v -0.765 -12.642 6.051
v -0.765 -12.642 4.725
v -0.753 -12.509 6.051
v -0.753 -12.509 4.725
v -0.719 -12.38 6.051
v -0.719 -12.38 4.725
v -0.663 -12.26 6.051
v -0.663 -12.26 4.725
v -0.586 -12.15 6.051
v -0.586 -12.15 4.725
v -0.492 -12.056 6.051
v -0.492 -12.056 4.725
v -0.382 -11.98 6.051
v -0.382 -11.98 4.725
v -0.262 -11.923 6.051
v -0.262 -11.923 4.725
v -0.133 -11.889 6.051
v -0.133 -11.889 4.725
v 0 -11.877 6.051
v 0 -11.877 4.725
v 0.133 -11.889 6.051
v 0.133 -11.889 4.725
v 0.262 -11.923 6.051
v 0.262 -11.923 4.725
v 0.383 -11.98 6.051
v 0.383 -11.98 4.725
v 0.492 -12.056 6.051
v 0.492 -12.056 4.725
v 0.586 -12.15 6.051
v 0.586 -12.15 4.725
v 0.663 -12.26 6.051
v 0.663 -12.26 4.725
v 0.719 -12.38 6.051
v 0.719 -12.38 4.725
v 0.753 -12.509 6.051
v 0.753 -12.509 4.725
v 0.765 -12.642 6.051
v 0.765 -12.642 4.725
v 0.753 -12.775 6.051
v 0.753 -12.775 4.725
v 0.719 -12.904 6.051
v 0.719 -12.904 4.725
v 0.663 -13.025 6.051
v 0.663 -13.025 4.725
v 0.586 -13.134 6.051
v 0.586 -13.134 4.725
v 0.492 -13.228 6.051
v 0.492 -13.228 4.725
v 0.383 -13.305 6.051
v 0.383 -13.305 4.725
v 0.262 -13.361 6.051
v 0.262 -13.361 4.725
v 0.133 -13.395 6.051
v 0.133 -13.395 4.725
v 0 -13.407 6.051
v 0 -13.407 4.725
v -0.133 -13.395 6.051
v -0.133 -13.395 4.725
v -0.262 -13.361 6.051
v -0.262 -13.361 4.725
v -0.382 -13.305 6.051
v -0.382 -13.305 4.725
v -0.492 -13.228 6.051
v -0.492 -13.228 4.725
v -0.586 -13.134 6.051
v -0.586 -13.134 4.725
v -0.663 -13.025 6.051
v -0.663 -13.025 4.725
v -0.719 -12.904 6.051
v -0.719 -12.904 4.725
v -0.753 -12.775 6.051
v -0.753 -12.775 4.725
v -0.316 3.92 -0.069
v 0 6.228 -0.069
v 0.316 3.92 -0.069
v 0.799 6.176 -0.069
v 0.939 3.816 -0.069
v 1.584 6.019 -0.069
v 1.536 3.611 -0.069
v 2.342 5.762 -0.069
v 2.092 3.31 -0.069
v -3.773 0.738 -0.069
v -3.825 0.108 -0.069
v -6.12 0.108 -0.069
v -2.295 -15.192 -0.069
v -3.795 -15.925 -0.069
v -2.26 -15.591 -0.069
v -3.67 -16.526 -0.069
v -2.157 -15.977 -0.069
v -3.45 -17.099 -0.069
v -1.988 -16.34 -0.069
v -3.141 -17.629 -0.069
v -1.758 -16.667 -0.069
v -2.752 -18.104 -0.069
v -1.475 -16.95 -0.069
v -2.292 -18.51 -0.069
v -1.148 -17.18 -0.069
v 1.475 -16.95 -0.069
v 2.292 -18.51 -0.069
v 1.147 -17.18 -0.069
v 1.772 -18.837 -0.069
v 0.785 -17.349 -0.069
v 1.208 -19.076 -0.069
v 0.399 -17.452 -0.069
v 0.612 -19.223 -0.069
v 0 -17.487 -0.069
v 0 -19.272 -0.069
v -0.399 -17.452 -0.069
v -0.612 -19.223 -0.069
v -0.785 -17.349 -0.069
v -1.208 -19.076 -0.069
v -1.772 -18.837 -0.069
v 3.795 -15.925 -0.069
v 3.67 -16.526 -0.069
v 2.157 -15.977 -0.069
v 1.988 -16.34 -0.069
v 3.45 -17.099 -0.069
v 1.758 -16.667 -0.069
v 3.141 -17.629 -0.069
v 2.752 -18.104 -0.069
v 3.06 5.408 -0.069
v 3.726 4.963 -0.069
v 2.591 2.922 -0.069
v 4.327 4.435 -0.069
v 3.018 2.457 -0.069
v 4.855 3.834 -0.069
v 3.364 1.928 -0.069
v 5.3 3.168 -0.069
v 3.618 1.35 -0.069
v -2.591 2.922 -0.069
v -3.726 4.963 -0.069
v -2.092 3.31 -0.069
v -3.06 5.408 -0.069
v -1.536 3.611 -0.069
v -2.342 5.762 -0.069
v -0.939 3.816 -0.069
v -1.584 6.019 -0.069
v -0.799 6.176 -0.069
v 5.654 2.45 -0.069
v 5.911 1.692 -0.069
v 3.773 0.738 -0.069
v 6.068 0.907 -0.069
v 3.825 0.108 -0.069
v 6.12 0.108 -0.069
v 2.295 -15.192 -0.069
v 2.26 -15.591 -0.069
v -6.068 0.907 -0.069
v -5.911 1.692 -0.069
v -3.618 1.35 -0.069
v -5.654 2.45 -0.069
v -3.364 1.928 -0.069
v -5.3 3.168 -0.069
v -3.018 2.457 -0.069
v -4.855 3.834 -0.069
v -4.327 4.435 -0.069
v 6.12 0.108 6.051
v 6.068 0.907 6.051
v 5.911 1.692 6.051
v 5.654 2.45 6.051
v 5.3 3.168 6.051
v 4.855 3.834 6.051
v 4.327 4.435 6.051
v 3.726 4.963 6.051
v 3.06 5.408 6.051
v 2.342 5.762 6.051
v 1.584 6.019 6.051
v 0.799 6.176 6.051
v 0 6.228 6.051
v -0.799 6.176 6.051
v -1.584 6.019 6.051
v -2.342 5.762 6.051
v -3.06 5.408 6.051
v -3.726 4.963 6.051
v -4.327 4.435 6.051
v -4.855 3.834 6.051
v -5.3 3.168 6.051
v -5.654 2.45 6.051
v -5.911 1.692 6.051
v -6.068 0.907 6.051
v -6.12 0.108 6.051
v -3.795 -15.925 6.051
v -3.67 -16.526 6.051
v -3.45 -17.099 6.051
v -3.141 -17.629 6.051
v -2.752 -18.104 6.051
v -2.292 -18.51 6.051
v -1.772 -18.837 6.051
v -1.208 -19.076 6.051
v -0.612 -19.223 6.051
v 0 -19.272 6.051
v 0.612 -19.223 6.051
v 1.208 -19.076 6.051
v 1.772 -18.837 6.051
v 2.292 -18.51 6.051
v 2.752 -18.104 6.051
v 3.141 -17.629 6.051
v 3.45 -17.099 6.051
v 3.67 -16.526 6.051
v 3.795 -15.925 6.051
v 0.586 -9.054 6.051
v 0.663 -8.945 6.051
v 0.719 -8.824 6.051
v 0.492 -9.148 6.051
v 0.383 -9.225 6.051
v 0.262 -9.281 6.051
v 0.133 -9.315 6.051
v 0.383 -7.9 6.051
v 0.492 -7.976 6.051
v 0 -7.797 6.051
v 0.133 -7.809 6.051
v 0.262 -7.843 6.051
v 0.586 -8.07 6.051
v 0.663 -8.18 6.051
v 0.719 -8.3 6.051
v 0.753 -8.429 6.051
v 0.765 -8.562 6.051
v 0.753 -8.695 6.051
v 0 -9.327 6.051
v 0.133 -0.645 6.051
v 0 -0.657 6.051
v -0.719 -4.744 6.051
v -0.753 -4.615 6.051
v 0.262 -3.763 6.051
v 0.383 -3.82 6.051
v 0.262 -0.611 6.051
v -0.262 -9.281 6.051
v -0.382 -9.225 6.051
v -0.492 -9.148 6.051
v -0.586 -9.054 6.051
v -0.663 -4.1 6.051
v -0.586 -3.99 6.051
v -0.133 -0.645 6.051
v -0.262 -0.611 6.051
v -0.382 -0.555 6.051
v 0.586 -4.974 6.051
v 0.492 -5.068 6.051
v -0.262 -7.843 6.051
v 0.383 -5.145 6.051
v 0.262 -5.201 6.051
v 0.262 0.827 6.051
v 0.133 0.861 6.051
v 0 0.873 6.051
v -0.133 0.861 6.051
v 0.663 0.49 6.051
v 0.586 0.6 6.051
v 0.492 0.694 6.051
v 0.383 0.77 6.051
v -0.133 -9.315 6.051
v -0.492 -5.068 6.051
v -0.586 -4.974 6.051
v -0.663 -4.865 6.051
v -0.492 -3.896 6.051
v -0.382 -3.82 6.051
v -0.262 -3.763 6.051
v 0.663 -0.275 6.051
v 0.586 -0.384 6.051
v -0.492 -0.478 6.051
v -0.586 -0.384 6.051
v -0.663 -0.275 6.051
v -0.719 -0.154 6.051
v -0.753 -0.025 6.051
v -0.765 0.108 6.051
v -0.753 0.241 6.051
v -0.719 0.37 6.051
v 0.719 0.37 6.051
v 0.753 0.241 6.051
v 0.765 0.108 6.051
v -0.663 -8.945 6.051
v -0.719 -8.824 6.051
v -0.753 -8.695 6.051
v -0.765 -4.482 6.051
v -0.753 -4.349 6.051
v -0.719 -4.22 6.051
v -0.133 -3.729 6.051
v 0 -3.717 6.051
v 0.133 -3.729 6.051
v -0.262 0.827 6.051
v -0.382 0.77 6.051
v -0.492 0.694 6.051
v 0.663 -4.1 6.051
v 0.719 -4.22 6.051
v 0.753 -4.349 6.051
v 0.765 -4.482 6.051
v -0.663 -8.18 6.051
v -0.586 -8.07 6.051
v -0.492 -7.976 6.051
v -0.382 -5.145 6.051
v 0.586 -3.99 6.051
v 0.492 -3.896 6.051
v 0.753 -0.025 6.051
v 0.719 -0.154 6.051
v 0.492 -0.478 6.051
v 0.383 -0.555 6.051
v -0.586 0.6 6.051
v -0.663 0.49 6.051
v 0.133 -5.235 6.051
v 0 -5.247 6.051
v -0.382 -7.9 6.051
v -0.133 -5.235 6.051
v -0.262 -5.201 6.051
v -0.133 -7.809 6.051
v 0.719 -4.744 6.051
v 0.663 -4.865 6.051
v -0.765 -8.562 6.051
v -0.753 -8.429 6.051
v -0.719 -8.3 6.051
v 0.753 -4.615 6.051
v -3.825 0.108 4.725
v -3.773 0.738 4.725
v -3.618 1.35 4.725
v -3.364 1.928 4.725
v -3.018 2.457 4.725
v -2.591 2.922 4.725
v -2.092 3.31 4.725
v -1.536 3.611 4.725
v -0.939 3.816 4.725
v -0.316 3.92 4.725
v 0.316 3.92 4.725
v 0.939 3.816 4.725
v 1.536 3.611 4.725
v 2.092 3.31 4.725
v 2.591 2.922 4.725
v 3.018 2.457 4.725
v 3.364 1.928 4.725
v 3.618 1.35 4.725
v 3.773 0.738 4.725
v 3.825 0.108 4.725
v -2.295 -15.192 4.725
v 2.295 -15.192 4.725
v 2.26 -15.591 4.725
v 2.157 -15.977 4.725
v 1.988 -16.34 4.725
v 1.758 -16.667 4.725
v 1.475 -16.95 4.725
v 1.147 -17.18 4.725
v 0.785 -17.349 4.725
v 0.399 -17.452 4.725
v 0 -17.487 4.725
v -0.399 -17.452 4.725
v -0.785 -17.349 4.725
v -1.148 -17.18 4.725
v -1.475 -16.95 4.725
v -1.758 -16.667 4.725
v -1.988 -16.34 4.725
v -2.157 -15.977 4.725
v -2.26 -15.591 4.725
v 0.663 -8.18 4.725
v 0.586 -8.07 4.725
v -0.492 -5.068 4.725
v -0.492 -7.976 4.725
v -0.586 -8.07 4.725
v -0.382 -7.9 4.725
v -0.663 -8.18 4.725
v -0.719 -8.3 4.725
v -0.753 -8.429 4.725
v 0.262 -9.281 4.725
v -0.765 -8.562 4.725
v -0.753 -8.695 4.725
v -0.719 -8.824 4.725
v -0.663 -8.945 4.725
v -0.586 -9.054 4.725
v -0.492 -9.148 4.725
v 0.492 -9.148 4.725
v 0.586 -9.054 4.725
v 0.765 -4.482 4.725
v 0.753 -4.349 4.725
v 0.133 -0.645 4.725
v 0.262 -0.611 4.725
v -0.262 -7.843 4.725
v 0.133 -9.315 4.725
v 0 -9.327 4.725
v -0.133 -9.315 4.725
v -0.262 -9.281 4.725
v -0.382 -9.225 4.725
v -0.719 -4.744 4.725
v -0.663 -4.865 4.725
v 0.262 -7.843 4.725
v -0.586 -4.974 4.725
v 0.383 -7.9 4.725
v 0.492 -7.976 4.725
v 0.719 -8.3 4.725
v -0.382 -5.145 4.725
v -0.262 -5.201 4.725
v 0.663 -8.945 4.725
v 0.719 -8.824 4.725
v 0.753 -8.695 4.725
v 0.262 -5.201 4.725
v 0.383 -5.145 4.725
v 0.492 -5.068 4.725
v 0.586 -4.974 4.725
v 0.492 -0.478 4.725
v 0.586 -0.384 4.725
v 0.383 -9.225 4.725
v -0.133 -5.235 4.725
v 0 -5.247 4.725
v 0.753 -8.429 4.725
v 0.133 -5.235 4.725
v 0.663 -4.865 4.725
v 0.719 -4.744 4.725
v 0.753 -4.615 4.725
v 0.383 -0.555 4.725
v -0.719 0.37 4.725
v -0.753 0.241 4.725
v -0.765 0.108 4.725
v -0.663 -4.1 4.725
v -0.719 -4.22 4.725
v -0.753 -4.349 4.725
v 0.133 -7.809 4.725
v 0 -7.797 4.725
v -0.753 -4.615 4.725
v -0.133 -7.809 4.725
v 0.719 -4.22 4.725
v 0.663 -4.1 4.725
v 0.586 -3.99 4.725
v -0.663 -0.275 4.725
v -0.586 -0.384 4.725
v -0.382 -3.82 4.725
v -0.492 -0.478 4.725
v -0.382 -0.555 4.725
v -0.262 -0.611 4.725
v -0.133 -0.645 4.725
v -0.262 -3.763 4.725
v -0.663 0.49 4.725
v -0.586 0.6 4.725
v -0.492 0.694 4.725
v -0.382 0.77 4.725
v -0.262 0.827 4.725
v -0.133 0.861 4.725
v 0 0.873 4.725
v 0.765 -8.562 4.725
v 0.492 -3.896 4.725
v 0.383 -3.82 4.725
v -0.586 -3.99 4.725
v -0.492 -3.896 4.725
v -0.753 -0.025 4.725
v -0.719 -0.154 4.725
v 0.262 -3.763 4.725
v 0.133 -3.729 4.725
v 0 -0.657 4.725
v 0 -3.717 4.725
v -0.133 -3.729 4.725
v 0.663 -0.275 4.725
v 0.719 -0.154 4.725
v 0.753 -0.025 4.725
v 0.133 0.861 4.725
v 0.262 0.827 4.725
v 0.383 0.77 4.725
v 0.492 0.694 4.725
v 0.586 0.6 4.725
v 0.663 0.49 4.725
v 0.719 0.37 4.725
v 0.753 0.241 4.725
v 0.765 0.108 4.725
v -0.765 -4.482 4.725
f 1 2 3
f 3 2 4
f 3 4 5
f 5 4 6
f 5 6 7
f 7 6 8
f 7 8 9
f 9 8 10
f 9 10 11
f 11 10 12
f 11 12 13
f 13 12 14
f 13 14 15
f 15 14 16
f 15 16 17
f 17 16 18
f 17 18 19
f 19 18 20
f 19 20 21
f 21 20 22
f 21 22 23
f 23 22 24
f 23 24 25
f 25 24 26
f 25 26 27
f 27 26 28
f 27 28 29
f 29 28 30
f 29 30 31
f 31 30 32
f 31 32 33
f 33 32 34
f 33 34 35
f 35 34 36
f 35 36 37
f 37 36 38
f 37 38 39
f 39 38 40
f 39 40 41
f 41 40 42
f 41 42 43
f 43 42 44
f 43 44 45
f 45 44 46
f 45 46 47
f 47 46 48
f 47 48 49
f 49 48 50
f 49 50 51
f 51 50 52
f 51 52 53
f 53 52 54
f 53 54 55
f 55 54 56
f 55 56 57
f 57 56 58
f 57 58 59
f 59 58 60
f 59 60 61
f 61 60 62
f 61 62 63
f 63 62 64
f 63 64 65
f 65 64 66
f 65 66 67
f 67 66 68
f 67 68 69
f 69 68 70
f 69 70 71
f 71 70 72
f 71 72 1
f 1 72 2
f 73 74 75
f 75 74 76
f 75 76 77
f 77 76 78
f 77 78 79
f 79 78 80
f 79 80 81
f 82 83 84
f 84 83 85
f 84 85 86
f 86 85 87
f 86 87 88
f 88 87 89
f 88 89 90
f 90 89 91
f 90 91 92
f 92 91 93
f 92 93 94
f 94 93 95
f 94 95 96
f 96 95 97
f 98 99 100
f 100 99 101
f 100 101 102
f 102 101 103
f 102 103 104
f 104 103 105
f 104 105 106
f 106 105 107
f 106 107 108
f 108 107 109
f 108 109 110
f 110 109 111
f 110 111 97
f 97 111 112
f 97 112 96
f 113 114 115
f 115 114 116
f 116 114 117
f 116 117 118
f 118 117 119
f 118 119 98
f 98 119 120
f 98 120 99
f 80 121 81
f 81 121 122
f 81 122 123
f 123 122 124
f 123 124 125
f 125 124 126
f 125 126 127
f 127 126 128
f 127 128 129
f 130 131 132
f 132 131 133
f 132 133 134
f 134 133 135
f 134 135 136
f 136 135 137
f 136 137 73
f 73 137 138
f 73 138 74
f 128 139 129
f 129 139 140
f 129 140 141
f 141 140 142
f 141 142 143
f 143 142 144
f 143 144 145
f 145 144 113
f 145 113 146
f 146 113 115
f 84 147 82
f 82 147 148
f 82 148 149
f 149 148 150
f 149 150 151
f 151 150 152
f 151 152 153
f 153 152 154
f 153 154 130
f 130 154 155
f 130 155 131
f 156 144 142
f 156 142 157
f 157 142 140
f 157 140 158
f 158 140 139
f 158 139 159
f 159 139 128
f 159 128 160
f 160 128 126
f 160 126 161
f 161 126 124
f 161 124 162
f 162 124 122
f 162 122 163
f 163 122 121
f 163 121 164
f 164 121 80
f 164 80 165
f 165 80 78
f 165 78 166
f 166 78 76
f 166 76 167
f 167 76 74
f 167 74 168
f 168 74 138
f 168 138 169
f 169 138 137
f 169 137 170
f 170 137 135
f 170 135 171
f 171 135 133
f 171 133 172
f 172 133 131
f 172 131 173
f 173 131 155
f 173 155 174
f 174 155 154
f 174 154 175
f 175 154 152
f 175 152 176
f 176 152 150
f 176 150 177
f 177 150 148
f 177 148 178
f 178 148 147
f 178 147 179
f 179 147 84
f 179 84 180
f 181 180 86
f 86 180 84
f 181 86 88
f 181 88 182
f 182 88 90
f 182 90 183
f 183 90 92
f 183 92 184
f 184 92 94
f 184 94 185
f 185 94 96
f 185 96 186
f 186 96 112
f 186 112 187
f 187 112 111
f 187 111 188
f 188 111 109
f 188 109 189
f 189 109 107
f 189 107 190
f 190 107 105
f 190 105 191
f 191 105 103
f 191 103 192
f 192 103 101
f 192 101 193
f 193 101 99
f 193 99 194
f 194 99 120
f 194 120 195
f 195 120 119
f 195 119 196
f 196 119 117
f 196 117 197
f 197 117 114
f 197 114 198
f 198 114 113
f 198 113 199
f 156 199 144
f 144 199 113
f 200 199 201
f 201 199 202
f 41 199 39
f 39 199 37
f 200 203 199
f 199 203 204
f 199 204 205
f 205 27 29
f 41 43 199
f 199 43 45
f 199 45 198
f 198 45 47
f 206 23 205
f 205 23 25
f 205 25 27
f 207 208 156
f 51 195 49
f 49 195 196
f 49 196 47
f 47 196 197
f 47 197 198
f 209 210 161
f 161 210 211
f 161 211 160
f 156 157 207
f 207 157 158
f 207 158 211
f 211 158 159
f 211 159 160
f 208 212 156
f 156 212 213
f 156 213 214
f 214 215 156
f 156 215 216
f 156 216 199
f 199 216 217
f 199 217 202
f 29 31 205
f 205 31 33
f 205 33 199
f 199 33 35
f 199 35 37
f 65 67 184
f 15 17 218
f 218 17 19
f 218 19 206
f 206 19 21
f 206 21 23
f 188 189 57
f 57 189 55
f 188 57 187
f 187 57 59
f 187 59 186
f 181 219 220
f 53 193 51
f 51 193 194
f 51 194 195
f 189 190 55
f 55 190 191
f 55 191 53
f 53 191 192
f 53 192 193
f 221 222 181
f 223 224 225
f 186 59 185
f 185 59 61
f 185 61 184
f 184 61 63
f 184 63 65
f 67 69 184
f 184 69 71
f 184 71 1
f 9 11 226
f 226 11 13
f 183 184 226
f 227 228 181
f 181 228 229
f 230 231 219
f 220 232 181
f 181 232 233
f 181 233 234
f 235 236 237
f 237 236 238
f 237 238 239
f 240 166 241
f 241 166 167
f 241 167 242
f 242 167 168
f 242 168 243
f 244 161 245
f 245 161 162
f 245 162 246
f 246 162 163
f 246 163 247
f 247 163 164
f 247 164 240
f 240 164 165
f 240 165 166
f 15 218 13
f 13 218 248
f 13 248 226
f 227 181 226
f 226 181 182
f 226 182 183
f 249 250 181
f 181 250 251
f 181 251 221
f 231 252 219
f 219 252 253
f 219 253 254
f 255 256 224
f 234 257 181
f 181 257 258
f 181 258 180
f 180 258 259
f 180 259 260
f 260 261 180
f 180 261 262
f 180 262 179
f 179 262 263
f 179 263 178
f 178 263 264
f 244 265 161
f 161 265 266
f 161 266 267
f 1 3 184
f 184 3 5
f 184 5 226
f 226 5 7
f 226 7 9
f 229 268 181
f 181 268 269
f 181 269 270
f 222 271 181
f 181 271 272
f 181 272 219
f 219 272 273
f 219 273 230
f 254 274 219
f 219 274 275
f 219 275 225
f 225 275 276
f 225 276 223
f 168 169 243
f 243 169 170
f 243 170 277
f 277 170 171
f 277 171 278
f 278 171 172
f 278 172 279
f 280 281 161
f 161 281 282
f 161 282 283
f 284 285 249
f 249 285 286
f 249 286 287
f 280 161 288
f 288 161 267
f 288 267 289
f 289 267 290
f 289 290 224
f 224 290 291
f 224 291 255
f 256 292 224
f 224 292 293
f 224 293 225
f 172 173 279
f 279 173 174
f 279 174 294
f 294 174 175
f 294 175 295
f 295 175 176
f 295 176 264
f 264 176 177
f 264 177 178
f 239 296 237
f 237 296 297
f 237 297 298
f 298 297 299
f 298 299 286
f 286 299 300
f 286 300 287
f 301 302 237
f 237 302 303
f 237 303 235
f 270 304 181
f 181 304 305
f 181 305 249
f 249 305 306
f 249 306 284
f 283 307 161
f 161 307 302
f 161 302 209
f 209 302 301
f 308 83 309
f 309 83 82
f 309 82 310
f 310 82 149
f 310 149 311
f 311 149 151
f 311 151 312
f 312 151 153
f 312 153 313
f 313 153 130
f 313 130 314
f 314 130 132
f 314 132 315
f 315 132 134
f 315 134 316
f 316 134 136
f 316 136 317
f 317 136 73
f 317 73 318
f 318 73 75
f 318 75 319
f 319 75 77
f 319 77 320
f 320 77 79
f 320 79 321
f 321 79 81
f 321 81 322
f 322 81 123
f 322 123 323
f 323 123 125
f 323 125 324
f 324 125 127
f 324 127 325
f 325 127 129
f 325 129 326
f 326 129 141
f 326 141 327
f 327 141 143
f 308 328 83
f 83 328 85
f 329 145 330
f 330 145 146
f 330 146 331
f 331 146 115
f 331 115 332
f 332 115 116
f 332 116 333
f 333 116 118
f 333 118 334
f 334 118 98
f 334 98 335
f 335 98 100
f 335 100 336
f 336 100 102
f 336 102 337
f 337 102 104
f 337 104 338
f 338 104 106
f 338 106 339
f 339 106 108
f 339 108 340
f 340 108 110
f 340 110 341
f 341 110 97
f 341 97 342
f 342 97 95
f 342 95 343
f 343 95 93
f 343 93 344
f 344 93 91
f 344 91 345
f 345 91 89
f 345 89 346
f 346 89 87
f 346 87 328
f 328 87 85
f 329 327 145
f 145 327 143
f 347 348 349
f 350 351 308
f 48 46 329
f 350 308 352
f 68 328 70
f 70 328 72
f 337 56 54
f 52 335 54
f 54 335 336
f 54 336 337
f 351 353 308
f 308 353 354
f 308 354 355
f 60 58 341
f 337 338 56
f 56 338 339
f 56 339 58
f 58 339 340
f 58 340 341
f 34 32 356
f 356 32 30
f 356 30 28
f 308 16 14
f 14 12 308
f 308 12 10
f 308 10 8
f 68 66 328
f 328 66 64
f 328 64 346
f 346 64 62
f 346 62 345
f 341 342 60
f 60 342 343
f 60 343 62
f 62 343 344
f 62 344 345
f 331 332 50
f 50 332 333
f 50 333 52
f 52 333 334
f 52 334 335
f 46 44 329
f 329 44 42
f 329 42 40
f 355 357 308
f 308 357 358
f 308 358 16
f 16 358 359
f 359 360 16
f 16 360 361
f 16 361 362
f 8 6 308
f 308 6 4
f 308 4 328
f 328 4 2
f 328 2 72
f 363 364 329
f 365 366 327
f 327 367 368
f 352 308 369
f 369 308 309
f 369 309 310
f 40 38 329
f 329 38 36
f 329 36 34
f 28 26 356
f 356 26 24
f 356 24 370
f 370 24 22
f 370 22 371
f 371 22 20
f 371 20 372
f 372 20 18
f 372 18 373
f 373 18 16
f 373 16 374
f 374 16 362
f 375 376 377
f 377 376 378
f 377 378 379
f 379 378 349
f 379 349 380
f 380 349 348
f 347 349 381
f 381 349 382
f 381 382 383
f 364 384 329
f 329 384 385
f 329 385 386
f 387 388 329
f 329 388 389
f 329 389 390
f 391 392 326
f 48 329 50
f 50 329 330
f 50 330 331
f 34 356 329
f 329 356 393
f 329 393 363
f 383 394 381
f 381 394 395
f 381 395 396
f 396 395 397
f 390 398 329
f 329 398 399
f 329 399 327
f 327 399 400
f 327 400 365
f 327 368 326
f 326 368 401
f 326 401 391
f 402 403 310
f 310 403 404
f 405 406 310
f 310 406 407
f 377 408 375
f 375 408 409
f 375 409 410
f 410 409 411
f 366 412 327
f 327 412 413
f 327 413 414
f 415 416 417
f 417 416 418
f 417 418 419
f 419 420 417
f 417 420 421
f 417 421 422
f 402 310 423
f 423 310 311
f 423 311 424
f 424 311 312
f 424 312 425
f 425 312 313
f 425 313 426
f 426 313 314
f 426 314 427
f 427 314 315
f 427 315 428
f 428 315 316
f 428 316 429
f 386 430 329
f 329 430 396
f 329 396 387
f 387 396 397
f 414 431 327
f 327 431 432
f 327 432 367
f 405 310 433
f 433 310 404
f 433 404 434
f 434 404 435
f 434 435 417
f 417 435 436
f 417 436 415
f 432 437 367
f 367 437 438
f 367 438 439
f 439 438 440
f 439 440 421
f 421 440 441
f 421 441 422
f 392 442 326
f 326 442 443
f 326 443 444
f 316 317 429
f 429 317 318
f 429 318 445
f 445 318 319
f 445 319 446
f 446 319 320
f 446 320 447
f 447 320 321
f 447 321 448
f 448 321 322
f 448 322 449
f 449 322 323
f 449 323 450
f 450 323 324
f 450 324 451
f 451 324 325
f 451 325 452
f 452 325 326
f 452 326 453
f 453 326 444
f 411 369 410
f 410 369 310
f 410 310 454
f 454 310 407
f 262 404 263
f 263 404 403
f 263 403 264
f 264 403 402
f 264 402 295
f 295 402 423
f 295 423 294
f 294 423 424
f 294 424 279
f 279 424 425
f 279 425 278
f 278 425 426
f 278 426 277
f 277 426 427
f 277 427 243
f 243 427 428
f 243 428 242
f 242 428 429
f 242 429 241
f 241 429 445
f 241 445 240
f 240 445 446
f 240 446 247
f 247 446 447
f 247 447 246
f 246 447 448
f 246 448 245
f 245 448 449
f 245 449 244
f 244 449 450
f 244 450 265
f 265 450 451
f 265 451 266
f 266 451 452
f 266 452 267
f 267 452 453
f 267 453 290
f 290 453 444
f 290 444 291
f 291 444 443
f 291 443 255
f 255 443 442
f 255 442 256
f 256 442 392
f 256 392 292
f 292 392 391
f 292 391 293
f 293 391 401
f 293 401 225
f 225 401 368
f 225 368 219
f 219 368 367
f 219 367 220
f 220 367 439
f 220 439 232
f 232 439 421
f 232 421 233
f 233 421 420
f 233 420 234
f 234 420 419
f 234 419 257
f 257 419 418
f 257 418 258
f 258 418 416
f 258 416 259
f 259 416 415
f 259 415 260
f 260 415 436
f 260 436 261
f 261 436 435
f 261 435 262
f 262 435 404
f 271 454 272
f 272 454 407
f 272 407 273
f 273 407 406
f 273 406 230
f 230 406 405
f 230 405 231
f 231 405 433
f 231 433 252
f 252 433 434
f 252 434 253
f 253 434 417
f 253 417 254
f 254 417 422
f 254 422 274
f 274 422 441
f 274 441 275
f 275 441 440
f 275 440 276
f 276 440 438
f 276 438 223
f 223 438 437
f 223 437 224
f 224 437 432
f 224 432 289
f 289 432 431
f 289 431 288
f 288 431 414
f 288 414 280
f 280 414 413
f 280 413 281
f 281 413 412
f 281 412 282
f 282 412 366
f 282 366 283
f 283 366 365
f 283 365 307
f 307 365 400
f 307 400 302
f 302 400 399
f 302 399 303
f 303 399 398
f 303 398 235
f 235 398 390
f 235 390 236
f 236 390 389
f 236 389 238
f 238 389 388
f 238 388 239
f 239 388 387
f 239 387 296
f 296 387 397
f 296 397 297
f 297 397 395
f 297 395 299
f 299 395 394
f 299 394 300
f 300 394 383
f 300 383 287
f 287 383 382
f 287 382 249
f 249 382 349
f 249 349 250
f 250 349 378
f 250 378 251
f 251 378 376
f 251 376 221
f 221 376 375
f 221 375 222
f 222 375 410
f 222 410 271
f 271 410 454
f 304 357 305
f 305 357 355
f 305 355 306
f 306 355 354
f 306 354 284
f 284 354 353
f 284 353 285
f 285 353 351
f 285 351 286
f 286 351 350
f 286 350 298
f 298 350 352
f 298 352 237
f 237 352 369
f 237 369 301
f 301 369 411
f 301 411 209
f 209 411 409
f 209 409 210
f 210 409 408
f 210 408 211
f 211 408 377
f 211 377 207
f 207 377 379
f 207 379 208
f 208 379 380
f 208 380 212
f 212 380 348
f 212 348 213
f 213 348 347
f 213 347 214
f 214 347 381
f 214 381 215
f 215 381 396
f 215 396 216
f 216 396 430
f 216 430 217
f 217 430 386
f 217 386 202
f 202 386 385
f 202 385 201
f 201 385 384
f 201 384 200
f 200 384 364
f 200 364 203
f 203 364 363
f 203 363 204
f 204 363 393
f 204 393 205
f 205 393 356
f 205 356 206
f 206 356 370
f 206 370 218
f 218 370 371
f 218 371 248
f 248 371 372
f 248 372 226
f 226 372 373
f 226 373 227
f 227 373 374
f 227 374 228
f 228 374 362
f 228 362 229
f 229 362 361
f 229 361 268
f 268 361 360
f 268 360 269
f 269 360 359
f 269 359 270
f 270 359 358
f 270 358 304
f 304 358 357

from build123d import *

# Parameters (mm, degrees)
BOSS_EXTRUDE1_DEPTH     = 6
CUT_EXTRUDE3_DEPTH      = 4.7
CUT_EXTRUDE4_DEPTH      = 21.471687766
CUT_EXTRUDE4_DEPTH_BACK = 21.471687766
SKETCH4_R               = 0.75
SKETCH6_R               = 0.75
CUT_EXTRUDE6_DEPTH      = 21.471687766
LPATTERN1_COUNT         = 3
LPATTERN1_PITCH         = 4
SCALE1_SCALE            = 1.02


with BuildPart() as part:
    # Sketch2 → Boss-Extrude1 (new body)
    with BuildSketch(Plane.XY):
        with BuildLine():
            Line((-6, 0), (-3.720572803, -15.718868867))
            ThreePointArc((-3.720572803, -15.718868867), (-5.969e-06, -19), (3.720571311, -15.71888071))
            Line((3.720571311, -15.71888071), (6, 0))
            ThreePointArc((6, 0), (0, 6), (-6, 0))
        make_face()
    extrude(amount=BOSS_EXTRUDE1_DEPTH)

    # Sketch3 → Cut-Extrude3 (cut)
    with BuildSketch(Plane.XY):
        with BuildLine():
            Line((-3.75, 0), (-2.25, -15))
            ThreePointArc((-2.25, -15), (0, -17.25), (2.25, -15))
            Line((2.25, -15), (3.75, 0))
            ThreePointArc((3.75, 0), (0, 3.75), (-3.75, 0))
        make_face()
    extrude(amount=CUT_EXTRUDE3_DEPTH, mode=Mode.SUBTRACT)

    # Sketch4 → Cut-Extrude4 (cut, two sides: drawn at the far end of the back side and taken through both)
    with BuildSketch(Plane(origin=(0, 0, 4.7), x_dir=(-1, 0, 0), z_dir=(0, 0, -1)).offset(-CUT_EXTRUDE4_DEPTH_BACK)):
        Circle(SKETCH4_R)
    extrude(amount=CUT_EXTRUDE4_DEPTH + CUT_EXTRUDE4_DEPTH_BACK, mode=Mode.SUBTRACT)

    # Sketch6 → Cut-Extrude6 (cut, symmetric)
    with BuildSketch(Plane(origin=(0, 0, 4.7), x_dir=(-1, 0, 0), z_dir=(0, 0, -1))):
        with Locations((0, -4.5)):
            Circle(SKETCH6_R)
    cut_extrude6 = extrude(amount=CUT_EXTRUDE6_DEPTH, both=True, mode=Mode.SUBTRACT)

    # LPattern1: Cut-Extrude6 ×3
    with Locations(*[(0, -i * LPATTERN1_PITCH, 0) for i in range(1, LPATTERN1_COUNT)]):
        add(cut_extrude6, mode=Mode.SUBTRACT)


with BuildPart() as part_1:
    # Scale1: scaled about (6e-08, -5.397561761, 3.434577722)
    add(part.part.scale(SCALE1_SCALE).moved(Location((-1e-09, 0.107951235, -0.068691554))))


solid = part_1.part
